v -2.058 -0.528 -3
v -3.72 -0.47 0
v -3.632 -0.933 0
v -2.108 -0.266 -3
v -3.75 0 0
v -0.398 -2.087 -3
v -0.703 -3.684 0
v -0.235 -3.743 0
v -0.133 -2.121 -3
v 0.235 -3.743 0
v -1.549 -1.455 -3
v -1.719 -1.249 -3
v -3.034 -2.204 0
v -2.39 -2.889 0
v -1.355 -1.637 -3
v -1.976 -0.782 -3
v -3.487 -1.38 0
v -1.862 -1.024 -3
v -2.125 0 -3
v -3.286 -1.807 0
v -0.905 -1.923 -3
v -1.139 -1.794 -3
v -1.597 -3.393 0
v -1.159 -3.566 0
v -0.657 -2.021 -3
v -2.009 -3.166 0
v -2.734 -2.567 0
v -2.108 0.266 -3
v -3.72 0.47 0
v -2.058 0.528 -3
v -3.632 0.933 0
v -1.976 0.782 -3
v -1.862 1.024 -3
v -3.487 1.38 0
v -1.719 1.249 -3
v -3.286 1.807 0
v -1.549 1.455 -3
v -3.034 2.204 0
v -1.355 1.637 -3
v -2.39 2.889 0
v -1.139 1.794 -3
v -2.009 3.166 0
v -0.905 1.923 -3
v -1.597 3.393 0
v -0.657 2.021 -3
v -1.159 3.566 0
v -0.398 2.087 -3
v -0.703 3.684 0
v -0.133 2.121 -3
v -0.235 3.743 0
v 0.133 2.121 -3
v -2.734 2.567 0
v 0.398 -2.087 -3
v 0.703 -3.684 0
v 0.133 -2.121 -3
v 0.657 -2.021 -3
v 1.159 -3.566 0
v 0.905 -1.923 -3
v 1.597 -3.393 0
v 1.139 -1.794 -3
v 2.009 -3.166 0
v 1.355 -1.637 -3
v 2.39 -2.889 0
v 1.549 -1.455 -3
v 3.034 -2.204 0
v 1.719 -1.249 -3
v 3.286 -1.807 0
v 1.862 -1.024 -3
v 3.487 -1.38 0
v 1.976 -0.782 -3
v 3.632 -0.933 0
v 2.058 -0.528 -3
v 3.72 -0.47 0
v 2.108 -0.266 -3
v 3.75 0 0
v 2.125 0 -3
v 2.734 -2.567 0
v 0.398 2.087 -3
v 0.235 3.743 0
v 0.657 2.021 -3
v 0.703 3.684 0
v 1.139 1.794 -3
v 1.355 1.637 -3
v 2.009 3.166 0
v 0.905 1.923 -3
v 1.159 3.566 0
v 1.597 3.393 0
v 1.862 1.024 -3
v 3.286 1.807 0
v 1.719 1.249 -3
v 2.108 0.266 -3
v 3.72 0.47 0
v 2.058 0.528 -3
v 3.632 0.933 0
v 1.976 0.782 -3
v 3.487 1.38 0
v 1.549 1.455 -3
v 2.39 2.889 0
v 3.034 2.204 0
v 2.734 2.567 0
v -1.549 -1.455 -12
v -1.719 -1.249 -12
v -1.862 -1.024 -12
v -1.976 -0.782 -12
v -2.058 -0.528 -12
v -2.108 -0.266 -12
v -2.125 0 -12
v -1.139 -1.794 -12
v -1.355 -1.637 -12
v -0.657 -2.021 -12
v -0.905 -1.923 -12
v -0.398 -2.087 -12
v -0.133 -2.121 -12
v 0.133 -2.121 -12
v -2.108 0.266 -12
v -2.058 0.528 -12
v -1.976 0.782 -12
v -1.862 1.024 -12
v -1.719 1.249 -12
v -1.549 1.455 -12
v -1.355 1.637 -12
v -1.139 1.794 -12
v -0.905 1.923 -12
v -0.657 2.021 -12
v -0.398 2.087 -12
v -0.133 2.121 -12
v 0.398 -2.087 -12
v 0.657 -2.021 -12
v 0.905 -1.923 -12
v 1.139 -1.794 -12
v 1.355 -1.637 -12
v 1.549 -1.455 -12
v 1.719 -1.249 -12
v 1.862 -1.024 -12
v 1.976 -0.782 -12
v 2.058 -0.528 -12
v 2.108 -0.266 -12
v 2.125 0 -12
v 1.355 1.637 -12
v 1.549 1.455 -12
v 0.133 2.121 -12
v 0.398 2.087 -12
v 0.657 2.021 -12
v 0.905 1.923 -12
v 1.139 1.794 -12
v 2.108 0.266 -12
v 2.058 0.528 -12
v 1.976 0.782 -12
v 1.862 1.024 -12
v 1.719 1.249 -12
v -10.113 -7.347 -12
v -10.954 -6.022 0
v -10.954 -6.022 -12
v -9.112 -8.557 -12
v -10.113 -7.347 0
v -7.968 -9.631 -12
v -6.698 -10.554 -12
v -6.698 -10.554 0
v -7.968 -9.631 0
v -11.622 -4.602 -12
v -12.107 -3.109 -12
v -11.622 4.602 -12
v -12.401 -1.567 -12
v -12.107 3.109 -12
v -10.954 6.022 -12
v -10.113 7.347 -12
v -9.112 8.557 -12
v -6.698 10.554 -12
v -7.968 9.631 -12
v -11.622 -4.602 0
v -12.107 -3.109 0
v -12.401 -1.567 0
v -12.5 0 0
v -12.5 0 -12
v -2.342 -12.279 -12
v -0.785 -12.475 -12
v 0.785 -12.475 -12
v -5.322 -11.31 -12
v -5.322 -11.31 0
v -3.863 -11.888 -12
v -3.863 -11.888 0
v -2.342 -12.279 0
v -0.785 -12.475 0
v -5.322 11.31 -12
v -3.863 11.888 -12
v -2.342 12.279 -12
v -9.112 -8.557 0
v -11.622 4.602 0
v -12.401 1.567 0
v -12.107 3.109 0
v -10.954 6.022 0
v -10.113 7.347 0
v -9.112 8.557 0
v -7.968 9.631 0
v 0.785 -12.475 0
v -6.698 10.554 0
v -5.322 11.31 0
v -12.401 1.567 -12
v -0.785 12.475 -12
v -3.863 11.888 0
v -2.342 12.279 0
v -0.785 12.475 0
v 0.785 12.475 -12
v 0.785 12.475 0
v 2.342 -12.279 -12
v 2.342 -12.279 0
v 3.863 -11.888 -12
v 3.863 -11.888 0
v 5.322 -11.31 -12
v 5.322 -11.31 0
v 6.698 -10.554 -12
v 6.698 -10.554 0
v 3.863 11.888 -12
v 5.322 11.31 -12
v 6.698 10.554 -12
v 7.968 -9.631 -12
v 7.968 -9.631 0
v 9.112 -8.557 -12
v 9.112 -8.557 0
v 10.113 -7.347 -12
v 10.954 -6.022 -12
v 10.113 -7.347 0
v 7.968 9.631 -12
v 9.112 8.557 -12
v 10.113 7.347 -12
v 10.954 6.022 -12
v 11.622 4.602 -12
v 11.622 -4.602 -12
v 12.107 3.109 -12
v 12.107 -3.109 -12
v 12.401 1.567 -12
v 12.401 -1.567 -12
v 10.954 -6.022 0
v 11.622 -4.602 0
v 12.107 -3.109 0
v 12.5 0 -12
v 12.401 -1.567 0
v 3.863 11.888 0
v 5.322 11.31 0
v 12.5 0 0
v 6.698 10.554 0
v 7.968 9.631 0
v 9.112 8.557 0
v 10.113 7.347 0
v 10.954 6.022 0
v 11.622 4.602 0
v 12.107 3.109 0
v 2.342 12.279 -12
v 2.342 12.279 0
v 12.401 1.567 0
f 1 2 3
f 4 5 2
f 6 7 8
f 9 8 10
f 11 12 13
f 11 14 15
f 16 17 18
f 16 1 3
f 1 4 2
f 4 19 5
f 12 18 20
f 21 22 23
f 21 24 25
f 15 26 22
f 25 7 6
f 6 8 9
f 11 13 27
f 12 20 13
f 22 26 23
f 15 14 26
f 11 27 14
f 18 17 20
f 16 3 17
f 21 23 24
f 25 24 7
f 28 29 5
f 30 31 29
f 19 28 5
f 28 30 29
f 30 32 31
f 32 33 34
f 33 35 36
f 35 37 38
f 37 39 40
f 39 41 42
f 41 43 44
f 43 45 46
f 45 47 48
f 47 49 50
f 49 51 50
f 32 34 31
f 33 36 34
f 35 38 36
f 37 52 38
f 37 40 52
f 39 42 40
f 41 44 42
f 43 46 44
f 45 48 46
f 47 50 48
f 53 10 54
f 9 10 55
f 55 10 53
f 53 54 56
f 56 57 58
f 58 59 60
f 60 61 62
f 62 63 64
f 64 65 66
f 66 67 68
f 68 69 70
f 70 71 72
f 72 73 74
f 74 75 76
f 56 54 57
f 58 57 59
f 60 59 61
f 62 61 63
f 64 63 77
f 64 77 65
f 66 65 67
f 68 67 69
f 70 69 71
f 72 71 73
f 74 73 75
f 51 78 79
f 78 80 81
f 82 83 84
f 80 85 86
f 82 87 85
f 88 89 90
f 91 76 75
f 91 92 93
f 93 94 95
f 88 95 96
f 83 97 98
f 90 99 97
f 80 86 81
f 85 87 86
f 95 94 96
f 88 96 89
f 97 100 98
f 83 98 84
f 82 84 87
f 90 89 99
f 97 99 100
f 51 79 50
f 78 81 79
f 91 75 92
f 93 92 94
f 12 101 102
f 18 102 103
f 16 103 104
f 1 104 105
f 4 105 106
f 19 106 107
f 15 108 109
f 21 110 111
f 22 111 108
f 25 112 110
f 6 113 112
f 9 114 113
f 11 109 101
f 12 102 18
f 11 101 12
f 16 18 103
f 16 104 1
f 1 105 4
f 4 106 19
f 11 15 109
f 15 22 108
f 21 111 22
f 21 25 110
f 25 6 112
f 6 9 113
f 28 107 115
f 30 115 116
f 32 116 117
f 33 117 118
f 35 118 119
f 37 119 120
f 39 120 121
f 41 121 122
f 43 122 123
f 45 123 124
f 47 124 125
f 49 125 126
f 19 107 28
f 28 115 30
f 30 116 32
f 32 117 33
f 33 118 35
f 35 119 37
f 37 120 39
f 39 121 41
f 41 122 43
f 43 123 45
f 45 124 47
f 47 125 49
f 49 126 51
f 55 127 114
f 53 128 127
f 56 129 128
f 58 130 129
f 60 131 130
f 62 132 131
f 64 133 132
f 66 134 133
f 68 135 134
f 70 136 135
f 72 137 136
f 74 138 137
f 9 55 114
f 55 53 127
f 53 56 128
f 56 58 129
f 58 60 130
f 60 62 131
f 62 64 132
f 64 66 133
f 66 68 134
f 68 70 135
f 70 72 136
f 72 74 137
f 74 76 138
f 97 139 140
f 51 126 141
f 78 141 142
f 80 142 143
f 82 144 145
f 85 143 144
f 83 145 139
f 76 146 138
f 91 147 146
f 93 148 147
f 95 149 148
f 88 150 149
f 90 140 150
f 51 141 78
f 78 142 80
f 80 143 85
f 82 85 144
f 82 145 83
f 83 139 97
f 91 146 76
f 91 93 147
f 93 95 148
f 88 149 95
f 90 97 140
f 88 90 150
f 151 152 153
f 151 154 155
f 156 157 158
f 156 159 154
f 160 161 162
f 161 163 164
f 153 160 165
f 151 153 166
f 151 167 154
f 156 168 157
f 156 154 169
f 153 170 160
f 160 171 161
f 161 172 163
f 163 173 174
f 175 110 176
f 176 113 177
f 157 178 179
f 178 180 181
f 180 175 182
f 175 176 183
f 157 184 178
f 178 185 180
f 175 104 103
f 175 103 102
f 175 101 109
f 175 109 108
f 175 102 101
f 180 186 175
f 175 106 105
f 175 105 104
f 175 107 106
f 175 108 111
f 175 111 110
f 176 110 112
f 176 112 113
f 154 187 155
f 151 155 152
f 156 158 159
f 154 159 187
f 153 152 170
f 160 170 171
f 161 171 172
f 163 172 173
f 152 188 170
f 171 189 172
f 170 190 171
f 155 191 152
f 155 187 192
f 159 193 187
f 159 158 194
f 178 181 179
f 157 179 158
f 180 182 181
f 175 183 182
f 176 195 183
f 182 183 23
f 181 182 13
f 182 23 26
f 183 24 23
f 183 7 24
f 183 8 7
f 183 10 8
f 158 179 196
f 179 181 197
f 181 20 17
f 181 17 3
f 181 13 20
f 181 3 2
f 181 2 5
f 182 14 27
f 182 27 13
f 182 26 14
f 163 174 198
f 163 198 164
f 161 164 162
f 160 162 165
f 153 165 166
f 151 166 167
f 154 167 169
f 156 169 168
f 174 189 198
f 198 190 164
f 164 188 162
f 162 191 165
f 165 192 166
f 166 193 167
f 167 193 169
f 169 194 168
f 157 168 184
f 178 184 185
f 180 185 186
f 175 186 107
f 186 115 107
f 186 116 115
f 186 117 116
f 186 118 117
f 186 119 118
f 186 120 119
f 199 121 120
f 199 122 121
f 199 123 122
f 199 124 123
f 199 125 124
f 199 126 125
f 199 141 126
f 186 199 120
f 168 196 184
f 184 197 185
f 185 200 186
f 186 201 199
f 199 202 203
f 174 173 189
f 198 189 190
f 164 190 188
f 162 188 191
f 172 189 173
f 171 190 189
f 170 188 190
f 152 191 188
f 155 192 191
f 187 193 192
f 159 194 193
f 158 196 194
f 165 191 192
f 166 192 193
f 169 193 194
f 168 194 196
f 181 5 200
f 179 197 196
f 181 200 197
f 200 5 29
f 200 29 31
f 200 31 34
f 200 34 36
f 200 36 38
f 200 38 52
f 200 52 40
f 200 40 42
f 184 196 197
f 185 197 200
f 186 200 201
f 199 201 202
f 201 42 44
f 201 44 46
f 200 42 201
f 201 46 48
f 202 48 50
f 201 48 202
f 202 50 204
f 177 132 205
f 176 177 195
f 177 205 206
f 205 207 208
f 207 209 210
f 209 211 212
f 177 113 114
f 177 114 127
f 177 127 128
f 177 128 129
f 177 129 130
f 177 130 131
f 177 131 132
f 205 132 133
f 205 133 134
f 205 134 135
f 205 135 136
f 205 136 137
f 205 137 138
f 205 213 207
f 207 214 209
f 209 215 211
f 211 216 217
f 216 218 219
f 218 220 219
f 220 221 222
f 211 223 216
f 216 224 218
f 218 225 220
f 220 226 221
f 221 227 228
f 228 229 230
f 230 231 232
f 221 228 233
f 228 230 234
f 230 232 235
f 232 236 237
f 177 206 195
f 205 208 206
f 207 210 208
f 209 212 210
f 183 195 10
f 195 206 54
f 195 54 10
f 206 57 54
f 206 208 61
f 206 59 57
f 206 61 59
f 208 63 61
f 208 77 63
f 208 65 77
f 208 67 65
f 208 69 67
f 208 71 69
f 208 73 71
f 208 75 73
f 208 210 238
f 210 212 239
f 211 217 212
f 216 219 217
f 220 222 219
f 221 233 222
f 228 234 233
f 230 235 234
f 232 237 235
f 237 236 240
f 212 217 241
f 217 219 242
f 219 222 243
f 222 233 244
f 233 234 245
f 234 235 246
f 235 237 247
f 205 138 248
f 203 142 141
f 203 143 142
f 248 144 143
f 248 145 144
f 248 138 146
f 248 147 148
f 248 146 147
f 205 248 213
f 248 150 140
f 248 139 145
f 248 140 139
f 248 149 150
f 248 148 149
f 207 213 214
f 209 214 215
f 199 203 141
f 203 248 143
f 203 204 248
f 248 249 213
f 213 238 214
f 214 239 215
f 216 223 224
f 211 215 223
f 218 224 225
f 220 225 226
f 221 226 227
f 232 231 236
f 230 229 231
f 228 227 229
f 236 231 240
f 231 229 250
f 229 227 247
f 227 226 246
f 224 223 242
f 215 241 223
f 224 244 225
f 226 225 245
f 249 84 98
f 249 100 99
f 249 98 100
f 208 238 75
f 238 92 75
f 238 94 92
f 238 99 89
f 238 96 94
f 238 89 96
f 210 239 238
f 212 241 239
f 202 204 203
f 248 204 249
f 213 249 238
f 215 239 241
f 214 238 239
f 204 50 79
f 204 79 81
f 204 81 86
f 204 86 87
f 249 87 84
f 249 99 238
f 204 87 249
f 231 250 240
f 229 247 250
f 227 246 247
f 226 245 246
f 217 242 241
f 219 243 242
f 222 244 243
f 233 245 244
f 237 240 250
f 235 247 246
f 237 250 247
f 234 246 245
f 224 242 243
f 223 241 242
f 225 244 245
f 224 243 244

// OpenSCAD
$fn = 50;

difference() {
	union() {
		translate(v = [0, 0, -12.0]) {
			cylinder(h = 12, r = 12.5);
		}
	}
	union() {
		translate(v = [0, 0, 0]) {
			rotate(a = [0, 0, 0]) {
				difference() {
					union() {
						translate(v = [0, 0, -15.0]) {
							cylinder(h = 15, r = 2.0);
						}
						translate(v = [0, 0, -3]) {
							cylinder(h = 3, r1 = 2.125, r2 = 3.75);
						}
						translate(v = [0, 0, -15.0]) {
							cylinder(h = 15, r = 2.125);
						}
						translate(v = [0, 0, -15.0]) {
							cylinder(h = 15, r = 2.0);
						}
					}
					union();
				}
			}
		}
	}
}
